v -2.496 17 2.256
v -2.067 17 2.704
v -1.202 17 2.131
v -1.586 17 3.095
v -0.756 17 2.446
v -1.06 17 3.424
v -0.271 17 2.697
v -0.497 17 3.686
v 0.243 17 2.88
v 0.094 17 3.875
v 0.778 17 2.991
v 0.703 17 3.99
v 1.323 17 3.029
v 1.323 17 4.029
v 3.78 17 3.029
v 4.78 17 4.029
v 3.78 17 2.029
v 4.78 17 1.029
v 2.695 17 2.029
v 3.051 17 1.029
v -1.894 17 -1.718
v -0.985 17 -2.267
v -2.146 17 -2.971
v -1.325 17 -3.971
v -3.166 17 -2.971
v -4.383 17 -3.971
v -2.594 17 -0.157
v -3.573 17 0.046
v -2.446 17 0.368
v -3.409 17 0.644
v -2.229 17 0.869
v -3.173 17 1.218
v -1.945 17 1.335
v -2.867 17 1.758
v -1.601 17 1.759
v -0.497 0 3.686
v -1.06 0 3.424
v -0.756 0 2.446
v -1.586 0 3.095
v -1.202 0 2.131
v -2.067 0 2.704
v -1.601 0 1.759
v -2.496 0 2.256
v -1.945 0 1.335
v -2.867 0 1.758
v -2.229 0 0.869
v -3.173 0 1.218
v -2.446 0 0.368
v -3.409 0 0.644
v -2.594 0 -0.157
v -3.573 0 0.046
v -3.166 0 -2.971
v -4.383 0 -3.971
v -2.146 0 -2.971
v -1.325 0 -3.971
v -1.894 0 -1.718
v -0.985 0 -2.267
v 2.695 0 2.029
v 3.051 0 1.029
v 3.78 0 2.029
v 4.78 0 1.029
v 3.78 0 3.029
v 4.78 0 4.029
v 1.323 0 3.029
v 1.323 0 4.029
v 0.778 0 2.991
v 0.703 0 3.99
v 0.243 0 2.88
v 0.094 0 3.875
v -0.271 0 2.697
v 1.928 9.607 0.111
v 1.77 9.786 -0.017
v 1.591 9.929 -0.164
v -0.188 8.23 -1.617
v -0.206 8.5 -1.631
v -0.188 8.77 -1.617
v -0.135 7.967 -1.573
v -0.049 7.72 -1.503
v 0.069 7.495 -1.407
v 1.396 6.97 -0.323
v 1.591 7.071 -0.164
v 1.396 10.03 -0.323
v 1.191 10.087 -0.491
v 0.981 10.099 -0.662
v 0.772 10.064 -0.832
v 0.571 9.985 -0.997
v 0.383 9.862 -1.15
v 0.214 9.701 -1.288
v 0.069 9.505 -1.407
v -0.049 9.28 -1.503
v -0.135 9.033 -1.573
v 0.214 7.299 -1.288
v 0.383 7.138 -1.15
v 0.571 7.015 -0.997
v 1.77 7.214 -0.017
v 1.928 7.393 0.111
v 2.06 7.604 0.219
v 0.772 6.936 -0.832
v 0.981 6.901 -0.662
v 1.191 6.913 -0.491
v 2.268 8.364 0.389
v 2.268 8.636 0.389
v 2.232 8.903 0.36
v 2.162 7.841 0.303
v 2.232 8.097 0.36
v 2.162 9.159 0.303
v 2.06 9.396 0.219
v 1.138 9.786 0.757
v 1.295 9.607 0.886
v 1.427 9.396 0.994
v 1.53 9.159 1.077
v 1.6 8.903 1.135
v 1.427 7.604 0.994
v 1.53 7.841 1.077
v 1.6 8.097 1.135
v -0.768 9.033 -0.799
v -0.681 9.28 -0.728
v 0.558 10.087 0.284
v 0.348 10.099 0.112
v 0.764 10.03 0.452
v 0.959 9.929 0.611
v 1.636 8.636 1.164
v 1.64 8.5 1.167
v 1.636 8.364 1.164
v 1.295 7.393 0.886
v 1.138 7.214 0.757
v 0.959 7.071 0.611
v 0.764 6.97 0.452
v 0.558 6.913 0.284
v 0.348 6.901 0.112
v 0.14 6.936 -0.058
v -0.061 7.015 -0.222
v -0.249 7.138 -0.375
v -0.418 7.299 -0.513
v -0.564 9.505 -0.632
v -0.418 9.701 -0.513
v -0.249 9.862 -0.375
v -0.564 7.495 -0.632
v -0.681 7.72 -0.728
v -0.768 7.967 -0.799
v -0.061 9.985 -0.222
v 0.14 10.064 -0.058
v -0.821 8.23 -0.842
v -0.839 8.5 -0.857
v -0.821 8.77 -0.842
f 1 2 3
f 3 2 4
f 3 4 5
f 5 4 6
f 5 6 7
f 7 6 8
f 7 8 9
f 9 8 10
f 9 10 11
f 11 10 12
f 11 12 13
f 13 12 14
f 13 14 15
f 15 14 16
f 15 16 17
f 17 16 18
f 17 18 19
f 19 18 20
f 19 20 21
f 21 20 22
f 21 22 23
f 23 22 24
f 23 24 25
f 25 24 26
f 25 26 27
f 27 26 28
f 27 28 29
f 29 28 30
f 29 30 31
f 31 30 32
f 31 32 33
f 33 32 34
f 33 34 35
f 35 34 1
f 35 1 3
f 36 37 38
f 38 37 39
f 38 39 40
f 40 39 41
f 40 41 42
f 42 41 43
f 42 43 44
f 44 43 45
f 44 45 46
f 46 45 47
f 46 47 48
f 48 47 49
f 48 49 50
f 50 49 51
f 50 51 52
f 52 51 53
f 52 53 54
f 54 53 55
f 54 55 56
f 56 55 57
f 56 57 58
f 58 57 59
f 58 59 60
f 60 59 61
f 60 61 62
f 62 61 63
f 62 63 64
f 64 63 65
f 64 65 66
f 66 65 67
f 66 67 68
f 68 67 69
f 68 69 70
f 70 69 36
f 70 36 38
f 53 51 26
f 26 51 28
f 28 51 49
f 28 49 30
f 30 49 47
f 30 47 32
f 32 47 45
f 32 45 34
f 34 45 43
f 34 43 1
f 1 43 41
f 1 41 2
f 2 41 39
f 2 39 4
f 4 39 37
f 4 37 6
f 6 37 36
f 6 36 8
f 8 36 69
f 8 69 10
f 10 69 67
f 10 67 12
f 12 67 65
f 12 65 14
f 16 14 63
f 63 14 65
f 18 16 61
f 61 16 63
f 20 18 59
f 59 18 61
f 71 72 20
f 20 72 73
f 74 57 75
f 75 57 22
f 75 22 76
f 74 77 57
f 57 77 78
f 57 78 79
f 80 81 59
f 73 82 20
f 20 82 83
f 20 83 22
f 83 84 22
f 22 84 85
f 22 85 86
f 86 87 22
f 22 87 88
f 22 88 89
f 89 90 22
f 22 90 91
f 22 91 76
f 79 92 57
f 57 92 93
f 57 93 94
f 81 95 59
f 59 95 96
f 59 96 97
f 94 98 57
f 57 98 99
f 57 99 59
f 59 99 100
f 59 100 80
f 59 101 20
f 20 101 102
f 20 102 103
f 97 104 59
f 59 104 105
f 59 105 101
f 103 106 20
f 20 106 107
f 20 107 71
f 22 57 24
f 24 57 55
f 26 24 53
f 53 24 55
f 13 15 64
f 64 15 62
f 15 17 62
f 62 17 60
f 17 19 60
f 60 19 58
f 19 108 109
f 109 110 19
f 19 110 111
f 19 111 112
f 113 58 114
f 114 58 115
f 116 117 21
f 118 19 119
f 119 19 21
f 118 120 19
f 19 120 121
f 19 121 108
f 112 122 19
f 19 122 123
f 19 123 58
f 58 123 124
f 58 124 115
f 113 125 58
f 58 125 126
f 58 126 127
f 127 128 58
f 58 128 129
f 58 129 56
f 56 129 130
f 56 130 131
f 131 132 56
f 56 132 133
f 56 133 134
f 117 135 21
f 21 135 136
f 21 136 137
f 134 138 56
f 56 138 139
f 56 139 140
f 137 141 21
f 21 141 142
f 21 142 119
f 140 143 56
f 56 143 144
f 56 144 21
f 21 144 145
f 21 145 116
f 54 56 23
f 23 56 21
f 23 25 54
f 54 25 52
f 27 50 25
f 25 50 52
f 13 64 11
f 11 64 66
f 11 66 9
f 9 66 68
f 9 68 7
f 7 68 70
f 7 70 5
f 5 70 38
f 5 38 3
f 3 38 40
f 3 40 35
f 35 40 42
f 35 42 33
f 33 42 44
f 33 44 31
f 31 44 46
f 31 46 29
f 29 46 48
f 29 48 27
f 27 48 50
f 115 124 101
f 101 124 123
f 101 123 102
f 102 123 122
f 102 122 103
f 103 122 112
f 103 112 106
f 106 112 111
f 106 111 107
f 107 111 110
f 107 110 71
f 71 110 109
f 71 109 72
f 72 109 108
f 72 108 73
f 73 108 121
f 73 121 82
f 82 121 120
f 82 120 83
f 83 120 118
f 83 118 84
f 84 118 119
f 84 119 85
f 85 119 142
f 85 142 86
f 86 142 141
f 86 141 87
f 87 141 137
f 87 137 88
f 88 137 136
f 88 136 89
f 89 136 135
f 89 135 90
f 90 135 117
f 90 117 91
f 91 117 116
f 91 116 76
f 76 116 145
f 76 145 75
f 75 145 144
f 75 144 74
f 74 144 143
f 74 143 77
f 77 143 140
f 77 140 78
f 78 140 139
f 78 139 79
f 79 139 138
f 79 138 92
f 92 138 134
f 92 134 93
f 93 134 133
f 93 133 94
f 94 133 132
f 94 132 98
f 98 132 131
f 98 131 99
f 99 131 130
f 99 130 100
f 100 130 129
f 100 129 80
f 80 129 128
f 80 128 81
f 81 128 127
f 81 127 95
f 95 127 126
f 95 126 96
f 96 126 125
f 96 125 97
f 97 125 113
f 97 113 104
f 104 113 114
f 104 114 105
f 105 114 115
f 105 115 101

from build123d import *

# Parameters (mm, degrees)
BOSS_EXTRUDE1_DEPTH = 17
SKETCH4_R           = 1.6
CUT_EXTRUDE2_DEPTH  = 1


with BuildPart() as part:
    # Sketch1 → Boss-Extrude1 (new body)
    with BuildSketch(Plane(origin=(0, 0, 0), x_dir=(1, 0, 0), z_dir=(0, 1, 0))):
        with BuildLine():
            Line((1.322591209, -4.028579324), (4.779691323, -4.028579324))
            Line((4.779691323, -4.028579324), (4.779691323, -1.028579324))
            Line((4.779691323, -1.028579324), (3.051141266, -1.028579324))
            Line((3.051141266, -1.028579324), (-0.984859984, 2.26705444))
            ThreePointArc((-0.984859984, 2.26705444), (-1.156228622, 3.119019075), (-1.325410362, 3.971420676))
            Line((-1.325410362, 3.971420676), (-4.382631249, 3.971420676))
            ThreePointArc((-4.382631249, 3.971420676), (-3.983741211, 1.961503644), (-3.572803177, -0.045984755))
            ThreePointArc((-3.572803177, -0.045984755), (-1.83279885, -2.907176181), (1.322591209, -4.028579324))
        make_face()
        with BuildLine():
            Line((3.779691323, -3.028579324), (3.779691323, -2.028579324))
            Line((3.779691323, -2.028579324), (2.694726151, -2.028579324))
            Line((2.694726151, -2.028579324), (-1.893840411, 1.718256703))
            ThreePointArc((-1.893840411, 1.718256703), (-2.020759818, 2.344719816), (-2.146500023, 2.971420676))
            Line((-2.146500023, 2.971420676), (-3.166177568, 2.971420676))
            ThreePointArc((-3.166177568, 2.971420676), (-2.882916081, 1.563855286), (-2.5937243, 0.157496332))
            ThreePointArc((-2.5937243, 0.157496332), (-1.201720839, -2.131456809), (1.322591209, -3.028579324))
            Line((1.322591209, -3.028579324), (3.779691323, -3.028579324))
        make_face(mode=Mode.SUBTRACT)
    extrude(amount=BOSS_EXTRUDE1_DEPTH)

    # Sketch4 → Cut-Extrude2 (cut)
    with BuildSketch(Plane(origin=(0.716662117, 0, -0.877660993), x_dir=(-0.774572925, 0, -0.632484612), z_dir=(0.632484612, 0, -0.774572925))):
        with Locations((-0.408584542, 8.5)):
            Circle(SKETCH4_R)
    extrude(amount=-CUT_EXTRUDE2_DEPTH, mode=Mode.SUBTRACT)


solid = part.part
